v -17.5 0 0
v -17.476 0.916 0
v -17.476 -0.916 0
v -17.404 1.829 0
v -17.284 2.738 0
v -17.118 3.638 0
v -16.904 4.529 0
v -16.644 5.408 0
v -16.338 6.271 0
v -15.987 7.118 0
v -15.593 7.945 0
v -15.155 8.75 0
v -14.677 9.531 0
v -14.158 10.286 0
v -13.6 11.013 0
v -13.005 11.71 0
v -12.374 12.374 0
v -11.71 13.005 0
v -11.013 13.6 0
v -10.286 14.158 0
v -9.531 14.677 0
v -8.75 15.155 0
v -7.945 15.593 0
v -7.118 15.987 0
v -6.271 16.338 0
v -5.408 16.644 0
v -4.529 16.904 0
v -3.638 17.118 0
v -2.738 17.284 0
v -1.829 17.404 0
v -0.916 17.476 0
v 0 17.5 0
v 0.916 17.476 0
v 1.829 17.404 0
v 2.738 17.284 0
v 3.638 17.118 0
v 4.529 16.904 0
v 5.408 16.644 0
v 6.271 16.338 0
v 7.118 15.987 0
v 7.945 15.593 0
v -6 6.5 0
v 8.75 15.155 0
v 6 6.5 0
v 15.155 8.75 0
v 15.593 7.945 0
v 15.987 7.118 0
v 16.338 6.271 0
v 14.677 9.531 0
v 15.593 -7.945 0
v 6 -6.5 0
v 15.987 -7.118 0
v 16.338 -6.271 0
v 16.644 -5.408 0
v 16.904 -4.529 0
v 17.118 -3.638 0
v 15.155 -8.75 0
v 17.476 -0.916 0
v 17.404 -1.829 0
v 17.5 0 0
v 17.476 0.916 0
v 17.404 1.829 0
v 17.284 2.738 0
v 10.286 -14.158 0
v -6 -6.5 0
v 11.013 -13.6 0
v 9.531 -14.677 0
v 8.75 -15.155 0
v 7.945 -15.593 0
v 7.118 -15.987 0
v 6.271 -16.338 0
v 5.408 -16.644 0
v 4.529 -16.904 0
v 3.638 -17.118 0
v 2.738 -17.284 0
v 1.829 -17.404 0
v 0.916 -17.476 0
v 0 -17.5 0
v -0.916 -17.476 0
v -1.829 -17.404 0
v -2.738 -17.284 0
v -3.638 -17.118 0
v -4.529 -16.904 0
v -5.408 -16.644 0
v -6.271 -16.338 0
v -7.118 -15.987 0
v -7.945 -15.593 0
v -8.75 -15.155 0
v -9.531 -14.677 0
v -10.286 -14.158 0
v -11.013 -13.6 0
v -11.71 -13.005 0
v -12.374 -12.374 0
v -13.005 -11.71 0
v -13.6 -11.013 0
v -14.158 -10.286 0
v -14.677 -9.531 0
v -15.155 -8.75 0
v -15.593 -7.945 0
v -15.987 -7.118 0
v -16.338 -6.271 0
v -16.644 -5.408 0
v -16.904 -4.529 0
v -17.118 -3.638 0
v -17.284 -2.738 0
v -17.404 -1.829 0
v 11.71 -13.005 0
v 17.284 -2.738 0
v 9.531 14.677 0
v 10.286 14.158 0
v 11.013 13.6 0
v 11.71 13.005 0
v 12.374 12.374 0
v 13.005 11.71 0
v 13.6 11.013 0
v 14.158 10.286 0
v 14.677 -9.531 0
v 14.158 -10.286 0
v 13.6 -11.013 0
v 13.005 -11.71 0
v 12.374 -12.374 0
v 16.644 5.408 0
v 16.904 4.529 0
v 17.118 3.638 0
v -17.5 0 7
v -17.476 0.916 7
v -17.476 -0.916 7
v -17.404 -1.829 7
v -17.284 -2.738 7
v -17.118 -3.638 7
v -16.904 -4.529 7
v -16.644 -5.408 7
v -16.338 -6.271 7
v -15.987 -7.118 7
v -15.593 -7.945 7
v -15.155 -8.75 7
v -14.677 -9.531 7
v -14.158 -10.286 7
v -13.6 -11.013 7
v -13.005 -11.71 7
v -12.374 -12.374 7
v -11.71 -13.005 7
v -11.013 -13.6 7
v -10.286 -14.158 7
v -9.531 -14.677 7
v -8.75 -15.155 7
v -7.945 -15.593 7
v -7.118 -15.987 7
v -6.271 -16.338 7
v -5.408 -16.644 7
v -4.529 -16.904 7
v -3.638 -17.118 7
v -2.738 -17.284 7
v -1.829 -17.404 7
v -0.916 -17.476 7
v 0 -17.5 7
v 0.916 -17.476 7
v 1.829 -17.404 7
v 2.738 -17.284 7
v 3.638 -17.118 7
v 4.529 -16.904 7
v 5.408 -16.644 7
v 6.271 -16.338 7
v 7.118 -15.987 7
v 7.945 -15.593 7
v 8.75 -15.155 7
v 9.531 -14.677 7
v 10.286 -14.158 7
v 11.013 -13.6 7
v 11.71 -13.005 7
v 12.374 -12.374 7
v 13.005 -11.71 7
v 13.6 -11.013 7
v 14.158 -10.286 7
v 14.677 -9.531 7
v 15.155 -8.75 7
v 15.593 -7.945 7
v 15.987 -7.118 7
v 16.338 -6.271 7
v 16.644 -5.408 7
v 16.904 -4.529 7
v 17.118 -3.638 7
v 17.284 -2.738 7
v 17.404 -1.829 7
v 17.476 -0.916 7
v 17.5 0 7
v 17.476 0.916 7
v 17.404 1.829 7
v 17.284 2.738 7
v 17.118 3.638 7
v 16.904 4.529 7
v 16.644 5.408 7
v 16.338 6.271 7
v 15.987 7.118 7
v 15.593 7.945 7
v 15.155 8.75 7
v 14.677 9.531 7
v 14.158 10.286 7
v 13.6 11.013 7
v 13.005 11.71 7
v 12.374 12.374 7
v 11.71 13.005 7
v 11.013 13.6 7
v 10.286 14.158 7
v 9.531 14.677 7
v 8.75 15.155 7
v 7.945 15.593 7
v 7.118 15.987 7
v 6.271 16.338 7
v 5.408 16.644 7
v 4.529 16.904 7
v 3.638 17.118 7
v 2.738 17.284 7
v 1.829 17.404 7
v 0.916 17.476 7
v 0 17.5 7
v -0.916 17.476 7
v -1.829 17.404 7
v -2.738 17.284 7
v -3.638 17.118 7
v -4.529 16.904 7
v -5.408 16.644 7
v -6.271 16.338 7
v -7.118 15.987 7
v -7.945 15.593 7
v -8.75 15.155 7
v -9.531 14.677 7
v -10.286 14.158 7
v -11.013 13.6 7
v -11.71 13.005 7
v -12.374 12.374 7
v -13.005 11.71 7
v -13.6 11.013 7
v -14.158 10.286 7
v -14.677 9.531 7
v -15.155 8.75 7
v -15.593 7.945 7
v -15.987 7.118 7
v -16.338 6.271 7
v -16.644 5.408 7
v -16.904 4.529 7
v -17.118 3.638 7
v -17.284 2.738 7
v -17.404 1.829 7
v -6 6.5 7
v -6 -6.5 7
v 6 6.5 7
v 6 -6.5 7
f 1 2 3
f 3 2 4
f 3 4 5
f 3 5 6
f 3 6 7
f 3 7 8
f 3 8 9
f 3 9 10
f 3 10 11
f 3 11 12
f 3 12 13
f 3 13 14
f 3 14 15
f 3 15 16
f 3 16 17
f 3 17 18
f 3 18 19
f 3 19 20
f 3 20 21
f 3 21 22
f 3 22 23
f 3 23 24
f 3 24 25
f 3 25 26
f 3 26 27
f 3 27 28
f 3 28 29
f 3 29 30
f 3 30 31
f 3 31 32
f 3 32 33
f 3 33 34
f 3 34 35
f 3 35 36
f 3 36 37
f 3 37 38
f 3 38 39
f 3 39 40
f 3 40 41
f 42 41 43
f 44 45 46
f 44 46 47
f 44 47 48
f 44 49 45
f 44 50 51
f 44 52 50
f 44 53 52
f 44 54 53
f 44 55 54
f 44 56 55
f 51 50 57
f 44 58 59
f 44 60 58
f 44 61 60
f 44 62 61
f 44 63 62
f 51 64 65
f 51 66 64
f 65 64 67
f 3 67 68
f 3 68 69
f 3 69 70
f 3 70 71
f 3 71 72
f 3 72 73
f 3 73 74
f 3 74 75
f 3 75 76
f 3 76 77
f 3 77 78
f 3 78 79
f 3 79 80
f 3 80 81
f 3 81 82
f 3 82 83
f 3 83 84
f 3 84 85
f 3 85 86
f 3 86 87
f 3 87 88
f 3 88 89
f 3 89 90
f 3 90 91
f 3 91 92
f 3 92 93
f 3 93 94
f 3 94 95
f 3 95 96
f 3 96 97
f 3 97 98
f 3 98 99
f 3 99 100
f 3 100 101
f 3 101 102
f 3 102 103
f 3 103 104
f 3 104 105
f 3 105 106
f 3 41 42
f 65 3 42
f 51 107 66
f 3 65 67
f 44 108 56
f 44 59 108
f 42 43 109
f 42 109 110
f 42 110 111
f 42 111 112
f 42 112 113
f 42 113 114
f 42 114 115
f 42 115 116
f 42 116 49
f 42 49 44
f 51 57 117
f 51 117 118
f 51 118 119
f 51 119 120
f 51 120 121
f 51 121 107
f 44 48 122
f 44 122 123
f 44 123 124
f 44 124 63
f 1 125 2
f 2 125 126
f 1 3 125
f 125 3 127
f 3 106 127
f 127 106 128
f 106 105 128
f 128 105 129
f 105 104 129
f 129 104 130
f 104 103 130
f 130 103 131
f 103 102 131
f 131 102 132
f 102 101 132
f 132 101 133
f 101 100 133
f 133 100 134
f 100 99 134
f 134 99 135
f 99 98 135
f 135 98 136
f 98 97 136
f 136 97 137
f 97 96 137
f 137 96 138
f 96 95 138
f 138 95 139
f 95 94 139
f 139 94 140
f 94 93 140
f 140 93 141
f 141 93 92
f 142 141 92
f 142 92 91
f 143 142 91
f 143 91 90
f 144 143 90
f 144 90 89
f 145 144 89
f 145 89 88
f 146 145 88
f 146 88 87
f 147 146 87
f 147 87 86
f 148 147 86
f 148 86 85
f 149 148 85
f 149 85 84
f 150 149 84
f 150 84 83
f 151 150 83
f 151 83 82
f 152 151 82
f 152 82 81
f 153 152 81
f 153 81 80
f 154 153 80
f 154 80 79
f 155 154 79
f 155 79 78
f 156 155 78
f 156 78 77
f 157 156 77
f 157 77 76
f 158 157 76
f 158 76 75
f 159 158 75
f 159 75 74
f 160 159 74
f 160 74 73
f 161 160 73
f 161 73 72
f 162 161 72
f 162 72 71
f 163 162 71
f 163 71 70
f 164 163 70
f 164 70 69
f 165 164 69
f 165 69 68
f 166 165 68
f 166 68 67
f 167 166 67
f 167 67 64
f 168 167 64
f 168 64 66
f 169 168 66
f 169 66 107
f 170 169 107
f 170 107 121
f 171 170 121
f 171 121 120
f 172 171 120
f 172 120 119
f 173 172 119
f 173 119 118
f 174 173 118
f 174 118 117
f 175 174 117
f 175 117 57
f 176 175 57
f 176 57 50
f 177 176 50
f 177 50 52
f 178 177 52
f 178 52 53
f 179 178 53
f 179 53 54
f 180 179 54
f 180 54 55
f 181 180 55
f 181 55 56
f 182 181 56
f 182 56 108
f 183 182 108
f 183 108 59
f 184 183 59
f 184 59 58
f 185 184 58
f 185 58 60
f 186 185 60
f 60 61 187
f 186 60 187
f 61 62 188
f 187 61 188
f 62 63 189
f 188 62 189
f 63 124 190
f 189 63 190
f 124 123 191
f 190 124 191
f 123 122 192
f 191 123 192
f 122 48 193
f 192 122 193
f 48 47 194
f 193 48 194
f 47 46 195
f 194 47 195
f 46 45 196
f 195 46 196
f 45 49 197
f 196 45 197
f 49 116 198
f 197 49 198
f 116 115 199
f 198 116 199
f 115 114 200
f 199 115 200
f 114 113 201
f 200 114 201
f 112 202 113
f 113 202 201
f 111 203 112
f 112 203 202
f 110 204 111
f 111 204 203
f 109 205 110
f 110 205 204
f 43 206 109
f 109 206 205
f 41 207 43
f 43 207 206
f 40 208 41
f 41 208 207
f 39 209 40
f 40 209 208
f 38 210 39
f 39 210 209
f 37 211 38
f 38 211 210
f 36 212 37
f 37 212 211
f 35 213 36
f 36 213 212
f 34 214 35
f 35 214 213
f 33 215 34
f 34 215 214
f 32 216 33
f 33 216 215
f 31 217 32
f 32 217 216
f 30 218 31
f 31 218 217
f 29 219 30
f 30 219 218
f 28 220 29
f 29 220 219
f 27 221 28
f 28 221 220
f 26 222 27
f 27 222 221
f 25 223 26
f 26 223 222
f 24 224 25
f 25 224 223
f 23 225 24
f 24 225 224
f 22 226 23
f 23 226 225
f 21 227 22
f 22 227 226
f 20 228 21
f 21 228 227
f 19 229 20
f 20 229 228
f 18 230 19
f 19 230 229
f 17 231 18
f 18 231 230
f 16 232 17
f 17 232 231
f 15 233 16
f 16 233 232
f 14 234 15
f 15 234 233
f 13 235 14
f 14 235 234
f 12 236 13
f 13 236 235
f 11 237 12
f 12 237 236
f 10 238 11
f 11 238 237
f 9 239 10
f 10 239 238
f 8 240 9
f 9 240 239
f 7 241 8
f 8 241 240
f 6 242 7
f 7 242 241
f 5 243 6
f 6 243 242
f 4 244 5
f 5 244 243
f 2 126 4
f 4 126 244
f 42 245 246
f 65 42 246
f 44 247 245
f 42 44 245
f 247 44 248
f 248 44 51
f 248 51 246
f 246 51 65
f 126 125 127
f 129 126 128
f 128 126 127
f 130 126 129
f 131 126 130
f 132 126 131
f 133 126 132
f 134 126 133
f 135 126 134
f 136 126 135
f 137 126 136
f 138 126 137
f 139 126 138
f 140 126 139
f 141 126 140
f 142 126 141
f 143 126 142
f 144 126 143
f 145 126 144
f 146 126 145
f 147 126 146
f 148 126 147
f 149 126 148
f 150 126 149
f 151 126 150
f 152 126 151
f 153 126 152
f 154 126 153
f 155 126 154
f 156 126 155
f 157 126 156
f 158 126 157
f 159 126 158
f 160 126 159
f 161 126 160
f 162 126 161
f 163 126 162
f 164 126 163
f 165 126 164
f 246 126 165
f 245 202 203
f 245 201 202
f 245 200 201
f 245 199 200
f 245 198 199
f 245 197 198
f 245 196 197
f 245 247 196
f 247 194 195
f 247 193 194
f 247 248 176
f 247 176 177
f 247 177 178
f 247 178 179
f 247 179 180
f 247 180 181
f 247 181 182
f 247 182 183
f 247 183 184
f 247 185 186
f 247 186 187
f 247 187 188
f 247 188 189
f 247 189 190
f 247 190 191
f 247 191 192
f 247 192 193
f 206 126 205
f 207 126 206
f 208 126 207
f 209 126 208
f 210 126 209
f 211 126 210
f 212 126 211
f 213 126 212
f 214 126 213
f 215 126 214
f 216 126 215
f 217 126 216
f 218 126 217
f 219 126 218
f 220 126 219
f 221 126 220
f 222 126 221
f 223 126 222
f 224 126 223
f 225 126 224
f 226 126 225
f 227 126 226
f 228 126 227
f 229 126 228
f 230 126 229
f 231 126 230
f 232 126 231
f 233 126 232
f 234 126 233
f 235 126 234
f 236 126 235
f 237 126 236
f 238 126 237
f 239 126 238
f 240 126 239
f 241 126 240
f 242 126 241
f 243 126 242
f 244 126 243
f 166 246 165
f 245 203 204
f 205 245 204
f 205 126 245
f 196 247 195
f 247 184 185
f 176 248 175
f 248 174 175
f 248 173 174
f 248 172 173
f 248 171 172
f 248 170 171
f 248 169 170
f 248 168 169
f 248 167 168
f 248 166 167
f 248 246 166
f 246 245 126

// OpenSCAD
//
// Thermal imaging camera "lens" for mounting
// on smooth rear
//
difference() {
  cylinder(h=7, d=35, center=false, $fn=120);

  // Cut-out for Flir Module
  translate([-6, -6.5, -1]) {
    cube([12, 13, 9]);
  }
}
